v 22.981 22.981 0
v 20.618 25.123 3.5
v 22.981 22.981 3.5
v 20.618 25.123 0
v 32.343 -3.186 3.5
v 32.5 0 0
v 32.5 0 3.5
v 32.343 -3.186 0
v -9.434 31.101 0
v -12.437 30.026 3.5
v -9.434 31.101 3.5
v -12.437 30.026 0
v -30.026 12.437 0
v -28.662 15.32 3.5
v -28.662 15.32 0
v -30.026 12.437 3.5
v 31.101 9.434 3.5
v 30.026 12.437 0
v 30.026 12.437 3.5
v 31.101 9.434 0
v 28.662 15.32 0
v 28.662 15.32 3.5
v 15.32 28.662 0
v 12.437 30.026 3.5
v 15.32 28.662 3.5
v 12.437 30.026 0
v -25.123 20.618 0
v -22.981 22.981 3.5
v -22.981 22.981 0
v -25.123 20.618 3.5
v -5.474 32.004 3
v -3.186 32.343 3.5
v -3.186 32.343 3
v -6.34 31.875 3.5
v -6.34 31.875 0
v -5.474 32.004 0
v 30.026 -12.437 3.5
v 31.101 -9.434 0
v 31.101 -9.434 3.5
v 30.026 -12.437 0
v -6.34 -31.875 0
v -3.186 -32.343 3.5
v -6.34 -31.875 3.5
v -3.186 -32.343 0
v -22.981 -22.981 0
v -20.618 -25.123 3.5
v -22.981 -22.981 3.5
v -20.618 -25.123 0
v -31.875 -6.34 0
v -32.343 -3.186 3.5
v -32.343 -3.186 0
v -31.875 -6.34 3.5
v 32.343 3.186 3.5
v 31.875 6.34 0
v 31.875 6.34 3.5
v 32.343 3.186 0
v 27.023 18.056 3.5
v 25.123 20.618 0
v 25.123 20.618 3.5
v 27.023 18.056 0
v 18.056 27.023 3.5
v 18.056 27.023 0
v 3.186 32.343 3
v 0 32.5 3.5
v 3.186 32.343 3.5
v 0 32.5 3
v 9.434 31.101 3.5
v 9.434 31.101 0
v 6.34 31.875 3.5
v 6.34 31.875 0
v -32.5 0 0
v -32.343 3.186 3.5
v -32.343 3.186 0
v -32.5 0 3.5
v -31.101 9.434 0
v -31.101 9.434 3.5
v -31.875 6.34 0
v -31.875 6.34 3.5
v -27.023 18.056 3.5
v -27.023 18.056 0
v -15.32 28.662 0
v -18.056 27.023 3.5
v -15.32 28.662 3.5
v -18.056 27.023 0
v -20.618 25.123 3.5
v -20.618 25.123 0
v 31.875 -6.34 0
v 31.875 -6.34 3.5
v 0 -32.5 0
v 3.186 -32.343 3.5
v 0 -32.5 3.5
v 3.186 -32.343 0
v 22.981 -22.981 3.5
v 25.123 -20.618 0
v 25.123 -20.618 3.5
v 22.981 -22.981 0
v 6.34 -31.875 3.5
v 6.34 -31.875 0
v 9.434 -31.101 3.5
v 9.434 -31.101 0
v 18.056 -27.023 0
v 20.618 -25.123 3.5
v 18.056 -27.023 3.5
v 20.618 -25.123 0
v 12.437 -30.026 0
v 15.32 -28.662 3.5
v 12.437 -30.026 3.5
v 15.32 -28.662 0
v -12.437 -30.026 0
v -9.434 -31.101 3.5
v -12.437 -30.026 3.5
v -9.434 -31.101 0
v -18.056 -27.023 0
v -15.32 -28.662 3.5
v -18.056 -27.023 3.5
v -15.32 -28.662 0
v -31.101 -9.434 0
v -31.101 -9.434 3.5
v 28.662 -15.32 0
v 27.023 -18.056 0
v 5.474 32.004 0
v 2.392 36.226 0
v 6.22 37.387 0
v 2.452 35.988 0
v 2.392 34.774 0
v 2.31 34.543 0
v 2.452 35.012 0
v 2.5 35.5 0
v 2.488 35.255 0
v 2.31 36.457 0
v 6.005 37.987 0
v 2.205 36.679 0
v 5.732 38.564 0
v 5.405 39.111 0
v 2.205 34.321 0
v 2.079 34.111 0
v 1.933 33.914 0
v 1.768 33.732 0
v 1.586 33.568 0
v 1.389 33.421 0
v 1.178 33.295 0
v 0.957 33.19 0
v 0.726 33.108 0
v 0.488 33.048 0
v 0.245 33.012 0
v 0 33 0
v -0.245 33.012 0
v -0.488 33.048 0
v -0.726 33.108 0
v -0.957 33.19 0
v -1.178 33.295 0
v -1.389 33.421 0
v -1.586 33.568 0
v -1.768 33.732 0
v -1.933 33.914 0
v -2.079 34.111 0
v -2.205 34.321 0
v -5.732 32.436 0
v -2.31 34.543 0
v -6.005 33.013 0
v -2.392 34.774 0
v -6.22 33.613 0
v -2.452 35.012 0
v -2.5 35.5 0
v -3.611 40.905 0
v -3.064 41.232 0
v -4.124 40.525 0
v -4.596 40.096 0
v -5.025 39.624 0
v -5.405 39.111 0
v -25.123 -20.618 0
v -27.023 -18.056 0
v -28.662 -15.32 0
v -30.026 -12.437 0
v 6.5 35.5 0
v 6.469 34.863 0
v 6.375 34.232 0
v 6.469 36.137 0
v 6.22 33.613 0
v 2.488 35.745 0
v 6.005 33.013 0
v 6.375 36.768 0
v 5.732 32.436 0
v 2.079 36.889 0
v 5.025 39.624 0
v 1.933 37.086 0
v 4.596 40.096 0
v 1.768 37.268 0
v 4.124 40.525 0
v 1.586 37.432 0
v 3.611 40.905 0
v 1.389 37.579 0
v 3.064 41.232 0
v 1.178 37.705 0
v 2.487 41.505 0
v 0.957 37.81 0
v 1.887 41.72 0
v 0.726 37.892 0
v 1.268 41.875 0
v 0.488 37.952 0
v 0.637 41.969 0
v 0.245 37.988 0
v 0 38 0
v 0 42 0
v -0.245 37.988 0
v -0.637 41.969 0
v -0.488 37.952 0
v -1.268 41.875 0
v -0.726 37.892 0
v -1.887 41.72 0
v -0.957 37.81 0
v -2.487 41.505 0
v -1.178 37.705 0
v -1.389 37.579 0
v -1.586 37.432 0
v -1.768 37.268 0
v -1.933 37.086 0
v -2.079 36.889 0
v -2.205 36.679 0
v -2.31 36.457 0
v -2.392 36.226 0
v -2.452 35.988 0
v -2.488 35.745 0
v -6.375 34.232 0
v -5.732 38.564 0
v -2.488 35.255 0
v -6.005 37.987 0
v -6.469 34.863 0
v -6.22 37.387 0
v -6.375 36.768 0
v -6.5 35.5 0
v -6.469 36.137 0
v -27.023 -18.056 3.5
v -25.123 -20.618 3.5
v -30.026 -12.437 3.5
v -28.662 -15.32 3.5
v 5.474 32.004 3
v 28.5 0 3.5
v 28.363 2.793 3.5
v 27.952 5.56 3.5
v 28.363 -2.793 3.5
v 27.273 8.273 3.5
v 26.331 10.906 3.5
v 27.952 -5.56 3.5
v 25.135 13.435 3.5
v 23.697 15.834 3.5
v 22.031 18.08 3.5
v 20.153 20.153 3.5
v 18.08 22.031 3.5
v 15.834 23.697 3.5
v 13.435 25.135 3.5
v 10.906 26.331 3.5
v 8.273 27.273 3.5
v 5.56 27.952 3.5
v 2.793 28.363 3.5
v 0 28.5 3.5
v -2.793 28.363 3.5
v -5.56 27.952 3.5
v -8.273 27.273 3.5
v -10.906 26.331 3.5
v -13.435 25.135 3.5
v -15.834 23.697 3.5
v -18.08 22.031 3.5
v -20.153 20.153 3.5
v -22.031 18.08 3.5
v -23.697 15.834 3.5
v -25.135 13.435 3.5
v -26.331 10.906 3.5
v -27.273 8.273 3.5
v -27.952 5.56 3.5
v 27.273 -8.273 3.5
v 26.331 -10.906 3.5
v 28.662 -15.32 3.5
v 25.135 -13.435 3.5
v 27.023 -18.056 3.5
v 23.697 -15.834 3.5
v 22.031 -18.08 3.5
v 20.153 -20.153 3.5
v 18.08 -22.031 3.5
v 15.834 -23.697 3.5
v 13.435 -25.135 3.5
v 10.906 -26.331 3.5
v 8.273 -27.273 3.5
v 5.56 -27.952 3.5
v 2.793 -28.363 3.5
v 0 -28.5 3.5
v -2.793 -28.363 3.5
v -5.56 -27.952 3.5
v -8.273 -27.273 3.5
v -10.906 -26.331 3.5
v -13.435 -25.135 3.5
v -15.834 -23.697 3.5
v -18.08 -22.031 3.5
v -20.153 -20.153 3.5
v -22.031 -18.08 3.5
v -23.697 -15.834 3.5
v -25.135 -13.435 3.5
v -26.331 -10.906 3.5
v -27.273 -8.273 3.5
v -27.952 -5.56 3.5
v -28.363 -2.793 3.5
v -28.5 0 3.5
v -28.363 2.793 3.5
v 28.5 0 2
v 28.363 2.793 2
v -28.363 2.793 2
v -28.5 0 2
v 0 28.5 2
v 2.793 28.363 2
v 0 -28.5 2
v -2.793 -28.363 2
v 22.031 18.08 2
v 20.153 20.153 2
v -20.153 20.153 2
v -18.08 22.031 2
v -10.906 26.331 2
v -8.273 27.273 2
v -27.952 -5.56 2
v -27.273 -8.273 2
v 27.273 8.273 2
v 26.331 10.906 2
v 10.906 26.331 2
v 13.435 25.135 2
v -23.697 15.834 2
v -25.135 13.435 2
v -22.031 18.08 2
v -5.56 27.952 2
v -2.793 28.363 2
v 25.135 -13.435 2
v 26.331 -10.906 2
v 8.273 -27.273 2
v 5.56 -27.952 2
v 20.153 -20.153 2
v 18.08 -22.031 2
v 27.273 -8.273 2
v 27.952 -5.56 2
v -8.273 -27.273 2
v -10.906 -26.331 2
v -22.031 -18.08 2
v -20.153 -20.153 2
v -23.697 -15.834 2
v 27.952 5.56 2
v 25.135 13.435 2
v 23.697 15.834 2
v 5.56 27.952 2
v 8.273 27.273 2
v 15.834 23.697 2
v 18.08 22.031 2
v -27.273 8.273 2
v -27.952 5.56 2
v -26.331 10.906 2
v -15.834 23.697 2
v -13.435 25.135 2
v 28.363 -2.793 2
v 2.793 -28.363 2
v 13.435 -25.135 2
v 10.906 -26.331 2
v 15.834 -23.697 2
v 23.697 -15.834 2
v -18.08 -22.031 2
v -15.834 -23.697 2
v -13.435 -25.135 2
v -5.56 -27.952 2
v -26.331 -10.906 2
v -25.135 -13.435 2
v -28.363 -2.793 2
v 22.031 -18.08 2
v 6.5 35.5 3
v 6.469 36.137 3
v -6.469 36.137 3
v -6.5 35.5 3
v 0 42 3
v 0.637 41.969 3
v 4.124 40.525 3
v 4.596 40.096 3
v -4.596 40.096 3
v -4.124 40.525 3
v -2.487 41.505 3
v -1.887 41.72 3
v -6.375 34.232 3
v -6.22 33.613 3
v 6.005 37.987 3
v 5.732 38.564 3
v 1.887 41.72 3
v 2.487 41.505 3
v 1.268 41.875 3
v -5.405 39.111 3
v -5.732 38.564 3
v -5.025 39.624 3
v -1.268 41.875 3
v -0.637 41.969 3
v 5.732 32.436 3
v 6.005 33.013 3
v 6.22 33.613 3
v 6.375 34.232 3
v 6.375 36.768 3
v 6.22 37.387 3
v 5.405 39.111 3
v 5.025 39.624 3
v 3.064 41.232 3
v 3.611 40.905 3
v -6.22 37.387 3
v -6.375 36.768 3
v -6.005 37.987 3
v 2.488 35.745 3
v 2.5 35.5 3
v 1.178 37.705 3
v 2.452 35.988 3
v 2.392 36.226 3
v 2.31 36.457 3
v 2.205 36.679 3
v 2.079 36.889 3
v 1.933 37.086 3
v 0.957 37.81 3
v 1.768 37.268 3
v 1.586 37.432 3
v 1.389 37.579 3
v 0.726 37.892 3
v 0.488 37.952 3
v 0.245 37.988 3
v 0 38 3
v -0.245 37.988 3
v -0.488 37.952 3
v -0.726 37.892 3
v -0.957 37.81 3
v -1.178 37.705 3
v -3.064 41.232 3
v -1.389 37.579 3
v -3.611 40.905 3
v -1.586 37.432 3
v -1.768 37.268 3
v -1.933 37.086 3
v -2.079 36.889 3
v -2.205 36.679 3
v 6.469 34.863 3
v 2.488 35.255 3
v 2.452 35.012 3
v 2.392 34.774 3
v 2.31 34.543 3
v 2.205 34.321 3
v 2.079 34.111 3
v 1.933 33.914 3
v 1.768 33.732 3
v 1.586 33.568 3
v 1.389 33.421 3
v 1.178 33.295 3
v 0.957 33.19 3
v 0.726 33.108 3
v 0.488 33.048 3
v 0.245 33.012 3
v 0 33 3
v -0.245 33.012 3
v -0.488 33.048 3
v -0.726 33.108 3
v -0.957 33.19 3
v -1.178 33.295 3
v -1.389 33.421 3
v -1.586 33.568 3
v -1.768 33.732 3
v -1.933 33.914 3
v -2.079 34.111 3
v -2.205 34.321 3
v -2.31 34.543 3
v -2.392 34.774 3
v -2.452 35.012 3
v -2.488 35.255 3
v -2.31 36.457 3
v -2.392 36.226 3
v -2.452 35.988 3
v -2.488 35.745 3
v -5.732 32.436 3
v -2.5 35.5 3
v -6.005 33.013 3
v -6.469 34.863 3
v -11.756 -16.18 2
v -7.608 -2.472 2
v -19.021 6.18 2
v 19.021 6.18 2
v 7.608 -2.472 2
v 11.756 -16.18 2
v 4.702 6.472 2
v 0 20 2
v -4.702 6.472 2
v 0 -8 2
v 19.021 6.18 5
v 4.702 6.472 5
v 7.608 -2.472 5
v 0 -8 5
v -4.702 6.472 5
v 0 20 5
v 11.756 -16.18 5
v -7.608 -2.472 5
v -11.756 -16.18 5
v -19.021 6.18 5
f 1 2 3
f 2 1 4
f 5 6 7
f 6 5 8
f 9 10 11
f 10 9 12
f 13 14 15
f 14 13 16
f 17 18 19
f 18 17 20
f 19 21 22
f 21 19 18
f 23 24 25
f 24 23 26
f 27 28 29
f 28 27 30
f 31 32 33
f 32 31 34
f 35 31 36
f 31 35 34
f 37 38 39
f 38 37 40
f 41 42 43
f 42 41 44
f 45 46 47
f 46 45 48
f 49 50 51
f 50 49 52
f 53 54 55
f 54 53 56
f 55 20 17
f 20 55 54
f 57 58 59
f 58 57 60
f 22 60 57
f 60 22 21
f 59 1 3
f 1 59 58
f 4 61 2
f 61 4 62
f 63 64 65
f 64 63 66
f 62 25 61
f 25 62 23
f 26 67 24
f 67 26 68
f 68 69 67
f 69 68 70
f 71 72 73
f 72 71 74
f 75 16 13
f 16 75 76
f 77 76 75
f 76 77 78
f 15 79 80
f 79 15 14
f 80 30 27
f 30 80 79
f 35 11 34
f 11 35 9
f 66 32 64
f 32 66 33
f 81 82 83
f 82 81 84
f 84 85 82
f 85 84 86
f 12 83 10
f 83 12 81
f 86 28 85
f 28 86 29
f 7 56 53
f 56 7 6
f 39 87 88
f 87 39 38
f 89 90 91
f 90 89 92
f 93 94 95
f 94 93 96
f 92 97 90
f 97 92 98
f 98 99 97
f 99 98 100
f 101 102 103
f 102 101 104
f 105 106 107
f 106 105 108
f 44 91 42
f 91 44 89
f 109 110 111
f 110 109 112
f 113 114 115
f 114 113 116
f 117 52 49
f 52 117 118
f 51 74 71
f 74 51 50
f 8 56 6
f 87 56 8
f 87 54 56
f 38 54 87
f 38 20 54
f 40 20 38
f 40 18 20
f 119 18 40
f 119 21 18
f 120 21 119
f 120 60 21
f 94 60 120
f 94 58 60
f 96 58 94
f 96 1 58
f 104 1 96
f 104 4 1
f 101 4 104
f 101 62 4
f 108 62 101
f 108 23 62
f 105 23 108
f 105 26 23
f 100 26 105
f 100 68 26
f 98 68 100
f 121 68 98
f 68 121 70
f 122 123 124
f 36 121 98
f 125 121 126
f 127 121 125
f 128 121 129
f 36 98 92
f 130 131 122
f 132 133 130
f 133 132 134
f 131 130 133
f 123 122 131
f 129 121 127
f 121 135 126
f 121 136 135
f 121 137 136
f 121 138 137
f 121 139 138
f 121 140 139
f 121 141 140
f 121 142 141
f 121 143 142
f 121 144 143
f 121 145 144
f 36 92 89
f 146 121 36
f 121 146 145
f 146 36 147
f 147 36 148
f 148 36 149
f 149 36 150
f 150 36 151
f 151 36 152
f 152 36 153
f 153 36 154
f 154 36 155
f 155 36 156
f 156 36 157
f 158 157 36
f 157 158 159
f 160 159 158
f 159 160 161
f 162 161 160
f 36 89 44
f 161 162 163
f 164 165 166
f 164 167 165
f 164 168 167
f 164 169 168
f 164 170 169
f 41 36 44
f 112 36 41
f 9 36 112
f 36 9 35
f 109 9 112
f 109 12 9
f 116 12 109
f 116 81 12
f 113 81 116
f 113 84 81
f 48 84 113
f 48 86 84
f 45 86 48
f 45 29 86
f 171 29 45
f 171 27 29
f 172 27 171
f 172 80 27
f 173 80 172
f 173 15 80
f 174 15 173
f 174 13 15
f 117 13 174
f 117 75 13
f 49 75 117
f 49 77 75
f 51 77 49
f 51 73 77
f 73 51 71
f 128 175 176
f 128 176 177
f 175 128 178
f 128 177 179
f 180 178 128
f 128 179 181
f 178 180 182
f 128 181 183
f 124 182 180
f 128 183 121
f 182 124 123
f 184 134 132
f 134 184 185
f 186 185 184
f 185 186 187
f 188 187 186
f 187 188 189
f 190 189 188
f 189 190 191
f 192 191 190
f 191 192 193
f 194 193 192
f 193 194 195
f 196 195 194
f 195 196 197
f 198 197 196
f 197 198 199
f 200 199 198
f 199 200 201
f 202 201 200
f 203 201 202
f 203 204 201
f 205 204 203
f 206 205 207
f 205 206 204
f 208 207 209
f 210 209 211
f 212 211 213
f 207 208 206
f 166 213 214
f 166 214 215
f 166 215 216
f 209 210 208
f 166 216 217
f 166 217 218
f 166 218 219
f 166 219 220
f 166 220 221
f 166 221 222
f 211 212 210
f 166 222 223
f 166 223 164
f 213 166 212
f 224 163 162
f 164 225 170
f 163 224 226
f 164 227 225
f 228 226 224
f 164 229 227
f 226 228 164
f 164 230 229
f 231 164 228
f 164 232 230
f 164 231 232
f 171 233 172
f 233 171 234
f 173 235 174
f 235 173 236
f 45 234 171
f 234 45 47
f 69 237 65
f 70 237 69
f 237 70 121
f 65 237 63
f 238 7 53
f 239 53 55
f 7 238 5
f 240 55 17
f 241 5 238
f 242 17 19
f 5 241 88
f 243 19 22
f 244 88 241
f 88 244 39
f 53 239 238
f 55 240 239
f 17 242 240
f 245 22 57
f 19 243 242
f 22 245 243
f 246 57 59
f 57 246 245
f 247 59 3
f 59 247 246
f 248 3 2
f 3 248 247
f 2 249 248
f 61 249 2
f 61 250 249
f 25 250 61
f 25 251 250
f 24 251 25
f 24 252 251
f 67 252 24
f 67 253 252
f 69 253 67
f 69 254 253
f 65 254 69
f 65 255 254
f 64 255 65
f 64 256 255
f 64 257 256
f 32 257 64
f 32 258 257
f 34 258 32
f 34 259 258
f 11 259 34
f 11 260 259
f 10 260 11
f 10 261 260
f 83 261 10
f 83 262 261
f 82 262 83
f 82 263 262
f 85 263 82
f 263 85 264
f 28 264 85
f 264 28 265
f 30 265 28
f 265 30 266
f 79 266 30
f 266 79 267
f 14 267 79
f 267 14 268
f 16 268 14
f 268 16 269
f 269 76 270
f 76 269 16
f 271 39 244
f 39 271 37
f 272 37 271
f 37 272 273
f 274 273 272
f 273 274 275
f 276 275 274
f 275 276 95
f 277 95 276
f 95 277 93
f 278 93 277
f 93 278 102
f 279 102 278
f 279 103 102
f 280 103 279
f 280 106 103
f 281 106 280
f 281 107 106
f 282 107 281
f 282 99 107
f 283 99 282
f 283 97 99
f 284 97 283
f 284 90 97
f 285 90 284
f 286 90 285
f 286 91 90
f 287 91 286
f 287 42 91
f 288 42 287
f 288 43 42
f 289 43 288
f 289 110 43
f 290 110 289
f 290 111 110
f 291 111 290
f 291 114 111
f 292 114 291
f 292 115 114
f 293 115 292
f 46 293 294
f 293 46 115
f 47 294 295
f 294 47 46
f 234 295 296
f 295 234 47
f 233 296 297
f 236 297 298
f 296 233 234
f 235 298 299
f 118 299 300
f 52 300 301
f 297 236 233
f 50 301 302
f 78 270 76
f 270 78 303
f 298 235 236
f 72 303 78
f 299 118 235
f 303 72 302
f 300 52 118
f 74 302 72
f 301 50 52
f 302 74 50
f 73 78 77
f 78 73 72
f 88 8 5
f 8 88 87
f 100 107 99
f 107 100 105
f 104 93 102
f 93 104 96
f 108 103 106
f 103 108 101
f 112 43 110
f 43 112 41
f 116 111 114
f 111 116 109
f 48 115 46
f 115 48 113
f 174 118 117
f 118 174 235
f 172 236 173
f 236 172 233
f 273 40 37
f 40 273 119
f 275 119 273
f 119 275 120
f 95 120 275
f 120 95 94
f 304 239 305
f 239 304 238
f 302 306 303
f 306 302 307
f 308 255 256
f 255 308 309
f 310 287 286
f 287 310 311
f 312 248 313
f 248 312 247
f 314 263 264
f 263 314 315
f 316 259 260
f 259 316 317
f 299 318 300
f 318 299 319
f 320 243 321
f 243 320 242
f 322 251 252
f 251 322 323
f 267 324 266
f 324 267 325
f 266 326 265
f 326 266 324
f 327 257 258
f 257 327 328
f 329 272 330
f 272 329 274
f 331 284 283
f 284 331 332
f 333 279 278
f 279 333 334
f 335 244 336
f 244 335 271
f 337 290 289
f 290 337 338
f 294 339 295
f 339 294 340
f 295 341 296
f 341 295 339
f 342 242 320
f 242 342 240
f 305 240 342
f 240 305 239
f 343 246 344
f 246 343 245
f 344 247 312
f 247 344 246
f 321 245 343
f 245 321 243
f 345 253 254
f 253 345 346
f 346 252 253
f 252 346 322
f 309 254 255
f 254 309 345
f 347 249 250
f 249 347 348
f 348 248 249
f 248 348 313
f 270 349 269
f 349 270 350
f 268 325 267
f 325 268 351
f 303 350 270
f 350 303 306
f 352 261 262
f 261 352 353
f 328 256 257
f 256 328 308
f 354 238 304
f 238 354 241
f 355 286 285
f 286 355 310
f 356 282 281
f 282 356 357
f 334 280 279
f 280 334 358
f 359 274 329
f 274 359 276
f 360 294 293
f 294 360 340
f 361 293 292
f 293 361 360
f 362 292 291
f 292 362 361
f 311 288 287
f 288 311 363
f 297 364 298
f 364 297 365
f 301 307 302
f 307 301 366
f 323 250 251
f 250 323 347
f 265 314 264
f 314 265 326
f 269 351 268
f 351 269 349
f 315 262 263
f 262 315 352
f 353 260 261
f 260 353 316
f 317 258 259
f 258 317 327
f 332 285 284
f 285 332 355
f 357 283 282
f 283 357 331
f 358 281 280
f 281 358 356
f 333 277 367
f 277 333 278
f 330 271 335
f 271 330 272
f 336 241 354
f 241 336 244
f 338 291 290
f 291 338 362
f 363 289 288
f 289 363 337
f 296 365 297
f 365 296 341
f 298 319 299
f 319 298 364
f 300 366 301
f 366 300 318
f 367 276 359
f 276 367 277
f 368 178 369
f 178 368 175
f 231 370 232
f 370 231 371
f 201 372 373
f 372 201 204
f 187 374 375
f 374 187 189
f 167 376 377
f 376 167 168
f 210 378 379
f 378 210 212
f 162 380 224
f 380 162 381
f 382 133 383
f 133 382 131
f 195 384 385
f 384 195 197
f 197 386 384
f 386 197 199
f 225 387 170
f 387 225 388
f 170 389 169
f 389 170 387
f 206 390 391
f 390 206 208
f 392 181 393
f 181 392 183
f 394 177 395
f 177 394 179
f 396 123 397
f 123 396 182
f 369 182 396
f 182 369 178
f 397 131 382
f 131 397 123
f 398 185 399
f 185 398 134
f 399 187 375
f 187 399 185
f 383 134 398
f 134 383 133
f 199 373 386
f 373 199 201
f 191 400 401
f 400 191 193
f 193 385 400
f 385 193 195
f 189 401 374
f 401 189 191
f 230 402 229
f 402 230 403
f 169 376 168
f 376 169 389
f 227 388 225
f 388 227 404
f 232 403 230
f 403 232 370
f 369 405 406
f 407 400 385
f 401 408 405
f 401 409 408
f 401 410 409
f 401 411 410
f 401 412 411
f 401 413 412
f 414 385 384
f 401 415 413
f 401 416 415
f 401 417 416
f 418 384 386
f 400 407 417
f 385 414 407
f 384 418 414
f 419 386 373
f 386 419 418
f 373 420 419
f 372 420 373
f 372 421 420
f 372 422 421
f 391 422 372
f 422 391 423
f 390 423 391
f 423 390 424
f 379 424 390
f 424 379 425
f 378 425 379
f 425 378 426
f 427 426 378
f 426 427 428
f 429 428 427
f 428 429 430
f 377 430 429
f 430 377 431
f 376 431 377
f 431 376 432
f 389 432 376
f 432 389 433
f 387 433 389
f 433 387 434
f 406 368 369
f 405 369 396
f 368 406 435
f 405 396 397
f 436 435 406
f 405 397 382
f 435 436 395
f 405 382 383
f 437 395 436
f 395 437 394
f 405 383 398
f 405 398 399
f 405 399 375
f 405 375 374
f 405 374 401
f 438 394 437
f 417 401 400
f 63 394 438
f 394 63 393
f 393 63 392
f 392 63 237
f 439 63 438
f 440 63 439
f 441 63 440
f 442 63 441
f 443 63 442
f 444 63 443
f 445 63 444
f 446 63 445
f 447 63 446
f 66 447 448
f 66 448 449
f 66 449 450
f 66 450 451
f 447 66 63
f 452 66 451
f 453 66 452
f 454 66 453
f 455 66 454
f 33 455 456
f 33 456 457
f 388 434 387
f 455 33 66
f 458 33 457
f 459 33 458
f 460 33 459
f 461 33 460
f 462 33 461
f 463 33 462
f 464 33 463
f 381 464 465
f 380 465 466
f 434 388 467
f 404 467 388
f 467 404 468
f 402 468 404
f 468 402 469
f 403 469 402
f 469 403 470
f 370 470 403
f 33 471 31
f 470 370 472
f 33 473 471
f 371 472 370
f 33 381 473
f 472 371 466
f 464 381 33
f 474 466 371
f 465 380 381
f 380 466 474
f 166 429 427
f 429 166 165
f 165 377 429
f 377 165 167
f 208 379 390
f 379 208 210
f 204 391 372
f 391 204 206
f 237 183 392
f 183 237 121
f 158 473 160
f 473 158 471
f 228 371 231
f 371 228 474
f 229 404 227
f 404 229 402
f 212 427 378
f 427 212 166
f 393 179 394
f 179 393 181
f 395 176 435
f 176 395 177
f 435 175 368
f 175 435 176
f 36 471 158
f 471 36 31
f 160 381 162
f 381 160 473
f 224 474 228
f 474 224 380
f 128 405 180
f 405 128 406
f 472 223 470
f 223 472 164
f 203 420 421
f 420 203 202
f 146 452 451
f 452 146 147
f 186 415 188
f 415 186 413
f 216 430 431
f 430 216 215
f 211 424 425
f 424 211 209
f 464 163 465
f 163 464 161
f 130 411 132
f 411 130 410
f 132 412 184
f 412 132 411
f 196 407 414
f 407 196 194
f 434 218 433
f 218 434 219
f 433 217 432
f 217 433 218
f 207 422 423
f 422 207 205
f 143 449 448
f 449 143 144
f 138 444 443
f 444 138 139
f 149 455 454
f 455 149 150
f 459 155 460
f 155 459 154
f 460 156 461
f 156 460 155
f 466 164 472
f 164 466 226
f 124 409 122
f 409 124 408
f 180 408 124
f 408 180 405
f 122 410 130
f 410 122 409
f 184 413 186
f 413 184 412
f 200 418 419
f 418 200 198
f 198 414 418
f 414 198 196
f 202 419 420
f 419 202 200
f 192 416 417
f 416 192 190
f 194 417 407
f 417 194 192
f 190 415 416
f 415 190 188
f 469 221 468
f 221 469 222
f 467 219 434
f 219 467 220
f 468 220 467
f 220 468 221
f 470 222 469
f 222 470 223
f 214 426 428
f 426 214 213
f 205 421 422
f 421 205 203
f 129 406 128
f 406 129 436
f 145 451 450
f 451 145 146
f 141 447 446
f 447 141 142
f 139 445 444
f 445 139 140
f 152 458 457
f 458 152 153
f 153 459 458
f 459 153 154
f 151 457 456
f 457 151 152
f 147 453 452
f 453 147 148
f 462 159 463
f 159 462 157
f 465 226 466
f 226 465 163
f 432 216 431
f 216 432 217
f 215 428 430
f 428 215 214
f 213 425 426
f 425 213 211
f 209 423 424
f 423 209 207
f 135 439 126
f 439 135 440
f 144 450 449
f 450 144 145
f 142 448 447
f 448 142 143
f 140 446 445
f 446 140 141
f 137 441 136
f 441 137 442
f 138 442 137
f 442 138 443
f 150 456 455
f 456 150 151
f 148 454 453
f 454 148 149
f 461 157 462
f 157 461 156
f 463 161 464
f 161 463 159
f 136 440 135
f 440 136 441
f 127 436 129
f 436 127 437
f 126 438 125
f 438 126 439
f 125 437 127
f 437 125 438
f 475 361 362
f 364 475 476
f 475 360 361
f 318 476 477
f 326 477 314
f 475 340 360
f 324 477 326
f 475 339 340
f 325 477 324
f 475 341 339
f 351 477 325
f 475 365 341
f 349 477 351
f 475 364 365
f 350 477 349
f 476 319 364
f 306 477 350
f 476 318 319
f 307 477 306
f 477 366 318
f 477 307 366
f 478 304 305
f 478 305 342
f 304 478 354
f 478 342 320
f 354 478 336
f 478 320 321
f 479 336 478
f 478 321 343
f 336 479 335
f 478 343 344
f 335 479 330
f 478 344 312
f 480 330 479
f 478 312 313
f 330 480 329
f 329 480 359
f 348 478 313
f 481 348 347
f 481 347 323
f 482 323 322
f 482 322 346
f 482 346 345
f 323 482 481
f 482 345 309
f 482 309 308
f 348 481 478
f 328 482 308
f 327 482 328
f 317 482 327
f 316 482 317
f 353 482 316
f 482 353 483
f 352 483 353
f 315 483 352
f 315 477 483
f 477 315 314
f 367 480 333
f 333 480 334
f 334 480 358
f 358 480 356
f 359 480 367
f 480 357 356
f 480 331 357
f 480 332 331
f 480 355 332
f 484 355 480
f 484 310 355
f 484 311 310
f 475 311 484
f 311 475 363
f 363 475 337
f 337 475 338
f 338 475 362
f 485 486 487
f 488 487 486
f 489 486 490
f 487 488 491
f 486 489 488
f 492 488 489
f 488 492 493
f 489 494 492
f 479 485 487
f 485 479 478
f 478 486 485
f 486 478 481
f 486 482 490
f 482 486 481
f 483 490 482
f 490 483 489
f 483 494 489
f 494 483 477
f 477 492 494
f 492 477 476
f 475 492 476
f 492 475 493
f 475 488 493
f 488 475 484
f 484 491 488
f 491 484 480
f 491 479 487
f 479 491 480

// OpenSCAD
// Reto 05 · Medalla en tres niveles (2 · 3,5 · 5 mm)
// Diseño e Impresión 3D en el aula · Pablo Moraga · CC BY-NC-ND 4.0
$fn = 64;
cylinder(d = 65, h = 2);
difference() { cylinder(d = 65, h = 3.5); translate([0, 0, -1]) cylinder(d = 57, h = 6); }
linear_extrude(5) polygon([for (i = [0:9]) let(r = i % 2 ? 8 : 20, t = 90 + i * 36) [r * cos(t), r * sin(t)]]);
translate([0, 35.5, 0]) difference() { cylinder(d = 13, h = 3); translate([0, 0, -1]) cylinder(d = 5, h = 5); }
